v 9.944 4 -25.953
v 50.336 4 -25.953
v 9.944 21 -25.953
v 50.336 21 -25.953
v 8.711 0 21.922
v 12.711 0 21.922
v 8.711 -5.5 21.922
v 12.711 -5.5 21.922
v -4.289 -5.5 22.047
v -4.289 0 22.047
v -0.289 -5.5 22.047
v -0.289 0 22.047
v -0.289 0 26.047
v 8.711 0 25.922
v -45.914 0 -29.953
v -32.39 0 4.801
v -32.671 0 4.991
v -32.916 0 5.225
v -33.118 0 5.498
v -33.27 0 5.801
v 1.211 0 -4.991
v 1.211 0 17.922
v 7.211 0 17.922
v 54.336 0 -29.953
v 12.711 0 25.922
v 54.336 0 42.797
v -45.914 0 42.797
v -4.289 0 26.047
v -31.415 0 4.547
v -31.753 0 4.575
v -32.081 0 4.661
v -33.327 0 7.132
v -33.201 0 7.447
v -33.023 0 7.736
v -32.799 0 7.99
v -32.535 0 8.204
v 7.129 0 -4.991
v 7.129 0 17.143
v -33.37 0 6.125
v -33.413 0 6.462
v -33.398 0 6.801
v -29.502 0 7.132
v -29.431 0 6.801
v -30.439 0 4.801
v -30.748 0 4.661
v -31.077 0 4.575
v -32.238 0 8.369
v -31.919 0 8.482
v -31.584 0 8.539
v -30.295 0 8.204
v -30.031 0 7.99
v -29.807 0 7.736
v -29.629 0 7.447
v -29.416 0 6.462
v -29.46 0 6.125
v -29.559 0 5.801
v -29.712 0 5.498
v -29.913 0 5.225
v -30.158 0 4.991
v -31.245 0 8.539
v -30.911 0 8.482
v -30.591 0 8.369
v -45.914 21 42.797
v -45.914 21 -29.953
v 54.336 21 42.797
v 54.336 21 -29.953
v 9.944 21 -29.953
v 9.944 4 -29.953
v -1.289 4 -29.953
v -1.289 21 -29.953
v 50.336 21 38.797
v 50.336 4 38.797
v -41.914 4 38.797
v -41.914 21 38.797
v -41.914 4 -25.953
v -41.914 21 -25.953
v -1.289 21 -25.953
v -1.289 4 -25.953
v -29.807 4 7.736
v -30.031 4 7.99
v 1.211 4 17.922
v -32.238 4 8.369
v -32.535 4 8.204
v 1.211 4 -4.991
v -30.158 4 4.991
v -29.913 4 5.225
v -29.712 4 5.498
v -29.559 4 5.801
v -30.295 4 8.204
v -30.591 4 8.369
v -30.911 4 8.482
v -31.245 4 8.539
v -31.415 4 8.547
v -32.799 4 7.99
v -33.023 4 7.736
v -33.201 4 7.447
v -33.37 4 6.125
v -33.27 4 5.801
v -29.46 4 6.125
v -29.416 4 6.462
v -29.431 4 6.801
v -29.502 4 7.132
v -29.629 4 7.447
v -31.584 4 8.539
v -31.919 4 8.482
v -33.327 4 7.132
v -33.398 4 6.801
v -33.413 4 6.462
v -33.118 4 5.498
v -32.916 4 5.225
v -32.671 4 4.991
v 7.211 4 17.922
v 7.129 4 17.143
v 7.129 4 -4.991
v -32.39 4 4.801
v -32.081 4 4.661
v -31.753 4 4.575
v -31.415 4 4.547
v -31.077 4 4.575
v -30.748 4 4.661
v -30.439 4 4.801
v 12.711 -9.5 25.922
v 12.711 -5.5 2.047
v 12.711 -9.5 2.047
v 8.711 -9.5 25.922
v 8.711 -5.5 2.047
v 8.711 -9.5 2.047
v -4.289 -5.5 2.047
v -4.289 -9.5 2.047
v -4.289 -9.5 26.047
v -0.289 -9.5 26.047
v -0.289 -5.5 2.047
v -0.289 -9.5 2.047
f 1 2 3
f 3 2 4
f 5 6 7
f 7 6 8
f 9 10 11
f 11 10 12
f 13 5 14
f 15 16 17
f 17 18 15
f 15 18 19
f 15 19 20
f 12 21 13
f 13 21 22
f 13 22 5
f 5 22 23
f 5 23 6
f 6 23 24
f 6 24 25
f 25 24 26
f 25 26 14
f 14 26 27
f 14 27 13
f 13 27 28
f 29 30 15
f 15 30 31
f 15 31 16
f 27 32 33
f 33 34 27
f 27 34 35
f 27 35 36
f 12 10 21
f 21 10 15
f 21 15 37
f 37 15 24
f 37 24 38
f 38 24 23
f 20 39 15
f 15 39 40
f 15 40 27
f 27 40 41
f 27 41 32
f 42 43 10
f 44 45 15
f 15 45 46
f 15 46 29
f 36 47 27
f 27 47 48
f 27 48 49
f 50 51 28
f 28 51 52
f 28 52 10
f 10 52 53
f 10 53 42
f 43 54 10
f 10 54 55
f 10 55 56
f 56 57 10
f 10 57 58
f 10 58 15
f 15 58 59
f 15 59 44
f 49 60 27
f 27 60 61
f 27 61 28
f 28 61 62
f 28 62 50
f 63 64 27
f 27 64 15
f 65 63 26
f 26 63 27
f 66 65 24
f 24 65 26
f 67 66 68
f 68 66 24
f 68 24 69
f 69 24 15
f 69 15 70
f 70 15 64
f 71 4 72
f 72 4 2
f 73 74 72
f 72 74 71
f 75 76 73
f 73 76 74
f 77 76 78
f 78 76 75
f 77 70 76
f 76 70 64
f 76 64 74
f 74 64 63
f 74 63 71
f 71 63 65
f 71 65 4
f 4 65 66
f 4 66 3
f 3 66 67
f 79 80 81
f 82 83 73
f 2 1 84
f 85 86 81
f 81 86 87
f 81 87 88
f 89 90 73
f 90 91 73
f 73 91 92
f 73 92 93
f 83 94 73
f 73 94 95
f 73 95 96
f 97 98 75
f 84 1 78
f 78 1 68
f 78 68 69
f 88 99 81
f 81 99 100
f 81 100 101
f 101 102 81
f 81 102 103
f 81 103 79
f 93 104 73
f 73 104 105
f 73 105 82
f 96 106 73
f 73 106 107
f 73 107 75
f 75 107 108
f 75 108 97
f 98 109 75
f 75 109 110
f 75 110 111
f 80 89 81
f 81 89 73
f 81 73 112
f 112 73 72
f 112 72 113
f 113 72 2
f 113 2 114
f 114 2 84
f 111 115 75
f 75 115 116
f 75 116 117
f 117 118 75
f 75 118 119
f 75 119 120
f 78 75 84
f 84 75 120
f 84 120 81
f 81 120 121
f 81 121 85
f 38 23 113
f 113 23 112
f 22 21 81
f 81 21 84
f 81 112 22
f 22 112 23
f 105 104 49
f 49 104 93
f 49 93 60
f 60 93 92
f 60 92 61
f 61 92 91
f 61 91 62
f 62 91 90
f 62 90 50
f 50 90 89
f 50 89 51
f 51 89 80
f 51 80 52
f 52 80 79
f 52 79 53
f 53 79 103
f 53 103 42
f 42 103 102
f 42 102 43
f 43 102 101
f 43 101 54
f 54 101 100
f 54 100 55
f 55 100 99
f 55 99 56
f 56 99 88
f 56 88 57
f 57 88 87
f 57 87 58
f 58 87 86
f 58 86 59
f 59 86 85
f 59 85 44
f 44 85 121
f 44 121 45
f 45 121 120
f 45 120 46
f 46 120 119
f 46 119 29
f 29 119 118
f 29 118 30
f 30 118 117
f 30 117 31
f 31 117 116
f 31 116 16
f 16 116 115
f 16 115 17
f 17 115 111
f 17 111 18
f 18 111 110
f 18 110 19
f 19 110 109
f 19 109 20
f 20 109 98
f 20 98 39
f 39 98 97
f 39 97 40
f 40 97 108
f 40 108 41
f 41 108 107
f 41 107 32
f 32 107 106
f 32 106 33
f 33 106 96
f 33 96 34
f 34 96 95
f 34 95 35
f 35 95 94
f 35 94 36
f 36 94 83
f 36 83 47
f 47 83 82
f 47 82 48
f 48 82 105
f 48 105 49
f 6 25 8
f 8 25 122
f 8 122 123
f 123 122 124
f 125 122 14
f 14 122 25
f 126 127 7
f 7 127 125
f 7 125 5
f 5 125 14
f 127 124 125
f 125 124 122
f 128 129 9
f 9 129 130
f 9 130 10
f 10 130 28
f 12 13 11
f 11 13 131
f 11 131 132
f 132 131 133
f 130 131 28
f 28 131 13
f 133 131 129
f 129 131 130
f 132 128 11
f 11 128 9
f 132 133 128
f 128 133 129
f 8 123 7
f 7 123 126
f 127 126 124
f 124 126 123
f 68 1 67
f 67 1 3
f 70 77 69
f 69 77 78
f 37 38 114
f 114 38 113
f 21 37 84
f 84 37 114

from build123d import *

# Parameters (mm, degrees)
SKETCH1_W           = 100.25
SKETCH1_H           = 72.75
BOSS_EXTRUDE1_DEPTH = 4
SKETCH1_3_W         = 100.25
SKETCH1_3_H         = 72.75
SKETCH1_3_W_2       = 92.25
SKETCH1_3_H_2       = 64.75
BOSS_EXTRUDE2_DEPTH = 21
CUT_EXTRUDE1_DEPTH  = 21
CUT_EXTRUDE3_DEPTH  = 21
SKETCH5_W           = 4
SKETCH5_H           = 4
BOSS_EXTRUDE3_DEPTH = 9.5
SKETCH7_W           = 4
SKETCH7_H           = 4
BOSS_EXTRUDE4_DEPTH = 20
SKETCH8_W           = 11.232726049
SKETCH8_H           = 17
CUT_EXTRUDE4_DEPTH  = 10
SKETCH10_W          = 5.918371549
SKETCH10_H          = 22.91291731
CUT_EXTRUDE5_DEPTH  = 10


with BuildPart() as part:
    # Sketch1 → Boss-Extrude1 (new body)
    with BuildSketch(Plane(origin=(0, 0, 0), x_dir=(1, 0, 0), z_dir=(0, 1, 0))):
        with Locations((4.210861322, -6.421587216)):
            Rectangle(SKETCH1_W, SKETCH1_H)
    extrude(amount=BOSS_EXTRUDE1_DEPTH)

    # Sketch1<3> → Boss-Extrude2 (add)
    with BuildSketch(Plane(origin=(0, 0, 0), x_dir=(1, 0, 0), z_dir=(0, 1, 0))):
        with Locations((4.210861322, -6.421587216)):
            Rectangle(SKETCH1_3_W, SKETCH1_3_H)
        with Locations((4.210861322, -6.421587216)):
            Rectangle(SKETCH1_3_W_2, SKETCH1_3_H_2, mode=Mode.SUBTRACT)
    extrude(amount=BOSS_EXTRUDE2_DEPTH)

    # Sketch2 → Cut-Extrude1 (cut)
    with BuildSketch(Plane.XZ):
        Polygon((1.210861322, 17.921587216), (1.210861322, -4.953073118), (4.812963363, -4.953073118), (7.210861322, 17.921587216), align=None)
    extrude(amount=-CUT_EXTRUDE1_DEPTH, mode=Mode.SUBTRACT)

    # Sketch2<4> → Cut-Extrude3 (cut)
    with BuildSketch(Plane.XZ):
        with BuildLine():
            ThreePointArc((-33.414603129, 6.529341832), (-31.406056992, 4.546601149), (-29.414677441, 6.546582571))
            ThreePointArc((-29.414677441, 6.546582571), (-31.423297891, 8.546563993), (-33.414603129, 6.529341832))
        make_face()
    extrude(amount=-CUT_EXTRUDE3_DEPTH, mode=Mode.SUBTRACT)

    # Sketch5 → Boss-Extrude3 (add)
    with BuildSketch(Plane(origin=(0, 0, 0), x_dir=(-1, 0, 0), z_dir=(0, -1, 0))):
        with Locations((-10.710861322, -23.921587216)):
            Rectangle(SKETCH5_W, SKETCH5_H)
        with Locations((2.289138678, -24.046587216)):
            Rectangle(SKETCH5_W, SKETCH5_H)
    extrude(amount=BOSS_EXTRUDE3_DEPTH)

    # Sketch7 → Boss-Extrude4 (add)
    with BuildSketch(Plane(origin=(0, 0, 22.046587216), x_dir=(-1, 0, 0), z_dir=(0, 0, -1))):
        with Locations((2.289138678, -7.5)):
            Rectangle(SKETCH7_W, SKETCH7_H)
        with Locations((-10.710861322, -7.5)):
            Rectangle(SKETCH7_W, SKETCH7_H)
    extrude(amount=BOSS_EXTRUDE4_DEPTH)

    # Sketch8 → Cut-Extrude4 (cut)
    with BuildSketch(Plane(origin=(0, 0, -29.953412784), x_dir=(-1, 0, 0), z_dir=(0, 0, -1))):
        with Locations((-4.327224347, 12.5)):
            Rectangle(SKETCH8_W, SKETCH8_H)
    extrude(amount=-CUT_EXTRUDE4_DEPTH, mode=Mode.SUBTRACT)

    # Sketch10 → Cut-Extrude5 (cut)
    with BuildSketch(Plane.XZ):
        with Locations((4.170047097, 6.465128561)):
            Rectangle(SKETCH10_W, SKETCH10_H)
    extrude(amount=-CUT_EXTRUDE5_DEPTH, mode=Mode.SUBTRACT)


solid = part.part
